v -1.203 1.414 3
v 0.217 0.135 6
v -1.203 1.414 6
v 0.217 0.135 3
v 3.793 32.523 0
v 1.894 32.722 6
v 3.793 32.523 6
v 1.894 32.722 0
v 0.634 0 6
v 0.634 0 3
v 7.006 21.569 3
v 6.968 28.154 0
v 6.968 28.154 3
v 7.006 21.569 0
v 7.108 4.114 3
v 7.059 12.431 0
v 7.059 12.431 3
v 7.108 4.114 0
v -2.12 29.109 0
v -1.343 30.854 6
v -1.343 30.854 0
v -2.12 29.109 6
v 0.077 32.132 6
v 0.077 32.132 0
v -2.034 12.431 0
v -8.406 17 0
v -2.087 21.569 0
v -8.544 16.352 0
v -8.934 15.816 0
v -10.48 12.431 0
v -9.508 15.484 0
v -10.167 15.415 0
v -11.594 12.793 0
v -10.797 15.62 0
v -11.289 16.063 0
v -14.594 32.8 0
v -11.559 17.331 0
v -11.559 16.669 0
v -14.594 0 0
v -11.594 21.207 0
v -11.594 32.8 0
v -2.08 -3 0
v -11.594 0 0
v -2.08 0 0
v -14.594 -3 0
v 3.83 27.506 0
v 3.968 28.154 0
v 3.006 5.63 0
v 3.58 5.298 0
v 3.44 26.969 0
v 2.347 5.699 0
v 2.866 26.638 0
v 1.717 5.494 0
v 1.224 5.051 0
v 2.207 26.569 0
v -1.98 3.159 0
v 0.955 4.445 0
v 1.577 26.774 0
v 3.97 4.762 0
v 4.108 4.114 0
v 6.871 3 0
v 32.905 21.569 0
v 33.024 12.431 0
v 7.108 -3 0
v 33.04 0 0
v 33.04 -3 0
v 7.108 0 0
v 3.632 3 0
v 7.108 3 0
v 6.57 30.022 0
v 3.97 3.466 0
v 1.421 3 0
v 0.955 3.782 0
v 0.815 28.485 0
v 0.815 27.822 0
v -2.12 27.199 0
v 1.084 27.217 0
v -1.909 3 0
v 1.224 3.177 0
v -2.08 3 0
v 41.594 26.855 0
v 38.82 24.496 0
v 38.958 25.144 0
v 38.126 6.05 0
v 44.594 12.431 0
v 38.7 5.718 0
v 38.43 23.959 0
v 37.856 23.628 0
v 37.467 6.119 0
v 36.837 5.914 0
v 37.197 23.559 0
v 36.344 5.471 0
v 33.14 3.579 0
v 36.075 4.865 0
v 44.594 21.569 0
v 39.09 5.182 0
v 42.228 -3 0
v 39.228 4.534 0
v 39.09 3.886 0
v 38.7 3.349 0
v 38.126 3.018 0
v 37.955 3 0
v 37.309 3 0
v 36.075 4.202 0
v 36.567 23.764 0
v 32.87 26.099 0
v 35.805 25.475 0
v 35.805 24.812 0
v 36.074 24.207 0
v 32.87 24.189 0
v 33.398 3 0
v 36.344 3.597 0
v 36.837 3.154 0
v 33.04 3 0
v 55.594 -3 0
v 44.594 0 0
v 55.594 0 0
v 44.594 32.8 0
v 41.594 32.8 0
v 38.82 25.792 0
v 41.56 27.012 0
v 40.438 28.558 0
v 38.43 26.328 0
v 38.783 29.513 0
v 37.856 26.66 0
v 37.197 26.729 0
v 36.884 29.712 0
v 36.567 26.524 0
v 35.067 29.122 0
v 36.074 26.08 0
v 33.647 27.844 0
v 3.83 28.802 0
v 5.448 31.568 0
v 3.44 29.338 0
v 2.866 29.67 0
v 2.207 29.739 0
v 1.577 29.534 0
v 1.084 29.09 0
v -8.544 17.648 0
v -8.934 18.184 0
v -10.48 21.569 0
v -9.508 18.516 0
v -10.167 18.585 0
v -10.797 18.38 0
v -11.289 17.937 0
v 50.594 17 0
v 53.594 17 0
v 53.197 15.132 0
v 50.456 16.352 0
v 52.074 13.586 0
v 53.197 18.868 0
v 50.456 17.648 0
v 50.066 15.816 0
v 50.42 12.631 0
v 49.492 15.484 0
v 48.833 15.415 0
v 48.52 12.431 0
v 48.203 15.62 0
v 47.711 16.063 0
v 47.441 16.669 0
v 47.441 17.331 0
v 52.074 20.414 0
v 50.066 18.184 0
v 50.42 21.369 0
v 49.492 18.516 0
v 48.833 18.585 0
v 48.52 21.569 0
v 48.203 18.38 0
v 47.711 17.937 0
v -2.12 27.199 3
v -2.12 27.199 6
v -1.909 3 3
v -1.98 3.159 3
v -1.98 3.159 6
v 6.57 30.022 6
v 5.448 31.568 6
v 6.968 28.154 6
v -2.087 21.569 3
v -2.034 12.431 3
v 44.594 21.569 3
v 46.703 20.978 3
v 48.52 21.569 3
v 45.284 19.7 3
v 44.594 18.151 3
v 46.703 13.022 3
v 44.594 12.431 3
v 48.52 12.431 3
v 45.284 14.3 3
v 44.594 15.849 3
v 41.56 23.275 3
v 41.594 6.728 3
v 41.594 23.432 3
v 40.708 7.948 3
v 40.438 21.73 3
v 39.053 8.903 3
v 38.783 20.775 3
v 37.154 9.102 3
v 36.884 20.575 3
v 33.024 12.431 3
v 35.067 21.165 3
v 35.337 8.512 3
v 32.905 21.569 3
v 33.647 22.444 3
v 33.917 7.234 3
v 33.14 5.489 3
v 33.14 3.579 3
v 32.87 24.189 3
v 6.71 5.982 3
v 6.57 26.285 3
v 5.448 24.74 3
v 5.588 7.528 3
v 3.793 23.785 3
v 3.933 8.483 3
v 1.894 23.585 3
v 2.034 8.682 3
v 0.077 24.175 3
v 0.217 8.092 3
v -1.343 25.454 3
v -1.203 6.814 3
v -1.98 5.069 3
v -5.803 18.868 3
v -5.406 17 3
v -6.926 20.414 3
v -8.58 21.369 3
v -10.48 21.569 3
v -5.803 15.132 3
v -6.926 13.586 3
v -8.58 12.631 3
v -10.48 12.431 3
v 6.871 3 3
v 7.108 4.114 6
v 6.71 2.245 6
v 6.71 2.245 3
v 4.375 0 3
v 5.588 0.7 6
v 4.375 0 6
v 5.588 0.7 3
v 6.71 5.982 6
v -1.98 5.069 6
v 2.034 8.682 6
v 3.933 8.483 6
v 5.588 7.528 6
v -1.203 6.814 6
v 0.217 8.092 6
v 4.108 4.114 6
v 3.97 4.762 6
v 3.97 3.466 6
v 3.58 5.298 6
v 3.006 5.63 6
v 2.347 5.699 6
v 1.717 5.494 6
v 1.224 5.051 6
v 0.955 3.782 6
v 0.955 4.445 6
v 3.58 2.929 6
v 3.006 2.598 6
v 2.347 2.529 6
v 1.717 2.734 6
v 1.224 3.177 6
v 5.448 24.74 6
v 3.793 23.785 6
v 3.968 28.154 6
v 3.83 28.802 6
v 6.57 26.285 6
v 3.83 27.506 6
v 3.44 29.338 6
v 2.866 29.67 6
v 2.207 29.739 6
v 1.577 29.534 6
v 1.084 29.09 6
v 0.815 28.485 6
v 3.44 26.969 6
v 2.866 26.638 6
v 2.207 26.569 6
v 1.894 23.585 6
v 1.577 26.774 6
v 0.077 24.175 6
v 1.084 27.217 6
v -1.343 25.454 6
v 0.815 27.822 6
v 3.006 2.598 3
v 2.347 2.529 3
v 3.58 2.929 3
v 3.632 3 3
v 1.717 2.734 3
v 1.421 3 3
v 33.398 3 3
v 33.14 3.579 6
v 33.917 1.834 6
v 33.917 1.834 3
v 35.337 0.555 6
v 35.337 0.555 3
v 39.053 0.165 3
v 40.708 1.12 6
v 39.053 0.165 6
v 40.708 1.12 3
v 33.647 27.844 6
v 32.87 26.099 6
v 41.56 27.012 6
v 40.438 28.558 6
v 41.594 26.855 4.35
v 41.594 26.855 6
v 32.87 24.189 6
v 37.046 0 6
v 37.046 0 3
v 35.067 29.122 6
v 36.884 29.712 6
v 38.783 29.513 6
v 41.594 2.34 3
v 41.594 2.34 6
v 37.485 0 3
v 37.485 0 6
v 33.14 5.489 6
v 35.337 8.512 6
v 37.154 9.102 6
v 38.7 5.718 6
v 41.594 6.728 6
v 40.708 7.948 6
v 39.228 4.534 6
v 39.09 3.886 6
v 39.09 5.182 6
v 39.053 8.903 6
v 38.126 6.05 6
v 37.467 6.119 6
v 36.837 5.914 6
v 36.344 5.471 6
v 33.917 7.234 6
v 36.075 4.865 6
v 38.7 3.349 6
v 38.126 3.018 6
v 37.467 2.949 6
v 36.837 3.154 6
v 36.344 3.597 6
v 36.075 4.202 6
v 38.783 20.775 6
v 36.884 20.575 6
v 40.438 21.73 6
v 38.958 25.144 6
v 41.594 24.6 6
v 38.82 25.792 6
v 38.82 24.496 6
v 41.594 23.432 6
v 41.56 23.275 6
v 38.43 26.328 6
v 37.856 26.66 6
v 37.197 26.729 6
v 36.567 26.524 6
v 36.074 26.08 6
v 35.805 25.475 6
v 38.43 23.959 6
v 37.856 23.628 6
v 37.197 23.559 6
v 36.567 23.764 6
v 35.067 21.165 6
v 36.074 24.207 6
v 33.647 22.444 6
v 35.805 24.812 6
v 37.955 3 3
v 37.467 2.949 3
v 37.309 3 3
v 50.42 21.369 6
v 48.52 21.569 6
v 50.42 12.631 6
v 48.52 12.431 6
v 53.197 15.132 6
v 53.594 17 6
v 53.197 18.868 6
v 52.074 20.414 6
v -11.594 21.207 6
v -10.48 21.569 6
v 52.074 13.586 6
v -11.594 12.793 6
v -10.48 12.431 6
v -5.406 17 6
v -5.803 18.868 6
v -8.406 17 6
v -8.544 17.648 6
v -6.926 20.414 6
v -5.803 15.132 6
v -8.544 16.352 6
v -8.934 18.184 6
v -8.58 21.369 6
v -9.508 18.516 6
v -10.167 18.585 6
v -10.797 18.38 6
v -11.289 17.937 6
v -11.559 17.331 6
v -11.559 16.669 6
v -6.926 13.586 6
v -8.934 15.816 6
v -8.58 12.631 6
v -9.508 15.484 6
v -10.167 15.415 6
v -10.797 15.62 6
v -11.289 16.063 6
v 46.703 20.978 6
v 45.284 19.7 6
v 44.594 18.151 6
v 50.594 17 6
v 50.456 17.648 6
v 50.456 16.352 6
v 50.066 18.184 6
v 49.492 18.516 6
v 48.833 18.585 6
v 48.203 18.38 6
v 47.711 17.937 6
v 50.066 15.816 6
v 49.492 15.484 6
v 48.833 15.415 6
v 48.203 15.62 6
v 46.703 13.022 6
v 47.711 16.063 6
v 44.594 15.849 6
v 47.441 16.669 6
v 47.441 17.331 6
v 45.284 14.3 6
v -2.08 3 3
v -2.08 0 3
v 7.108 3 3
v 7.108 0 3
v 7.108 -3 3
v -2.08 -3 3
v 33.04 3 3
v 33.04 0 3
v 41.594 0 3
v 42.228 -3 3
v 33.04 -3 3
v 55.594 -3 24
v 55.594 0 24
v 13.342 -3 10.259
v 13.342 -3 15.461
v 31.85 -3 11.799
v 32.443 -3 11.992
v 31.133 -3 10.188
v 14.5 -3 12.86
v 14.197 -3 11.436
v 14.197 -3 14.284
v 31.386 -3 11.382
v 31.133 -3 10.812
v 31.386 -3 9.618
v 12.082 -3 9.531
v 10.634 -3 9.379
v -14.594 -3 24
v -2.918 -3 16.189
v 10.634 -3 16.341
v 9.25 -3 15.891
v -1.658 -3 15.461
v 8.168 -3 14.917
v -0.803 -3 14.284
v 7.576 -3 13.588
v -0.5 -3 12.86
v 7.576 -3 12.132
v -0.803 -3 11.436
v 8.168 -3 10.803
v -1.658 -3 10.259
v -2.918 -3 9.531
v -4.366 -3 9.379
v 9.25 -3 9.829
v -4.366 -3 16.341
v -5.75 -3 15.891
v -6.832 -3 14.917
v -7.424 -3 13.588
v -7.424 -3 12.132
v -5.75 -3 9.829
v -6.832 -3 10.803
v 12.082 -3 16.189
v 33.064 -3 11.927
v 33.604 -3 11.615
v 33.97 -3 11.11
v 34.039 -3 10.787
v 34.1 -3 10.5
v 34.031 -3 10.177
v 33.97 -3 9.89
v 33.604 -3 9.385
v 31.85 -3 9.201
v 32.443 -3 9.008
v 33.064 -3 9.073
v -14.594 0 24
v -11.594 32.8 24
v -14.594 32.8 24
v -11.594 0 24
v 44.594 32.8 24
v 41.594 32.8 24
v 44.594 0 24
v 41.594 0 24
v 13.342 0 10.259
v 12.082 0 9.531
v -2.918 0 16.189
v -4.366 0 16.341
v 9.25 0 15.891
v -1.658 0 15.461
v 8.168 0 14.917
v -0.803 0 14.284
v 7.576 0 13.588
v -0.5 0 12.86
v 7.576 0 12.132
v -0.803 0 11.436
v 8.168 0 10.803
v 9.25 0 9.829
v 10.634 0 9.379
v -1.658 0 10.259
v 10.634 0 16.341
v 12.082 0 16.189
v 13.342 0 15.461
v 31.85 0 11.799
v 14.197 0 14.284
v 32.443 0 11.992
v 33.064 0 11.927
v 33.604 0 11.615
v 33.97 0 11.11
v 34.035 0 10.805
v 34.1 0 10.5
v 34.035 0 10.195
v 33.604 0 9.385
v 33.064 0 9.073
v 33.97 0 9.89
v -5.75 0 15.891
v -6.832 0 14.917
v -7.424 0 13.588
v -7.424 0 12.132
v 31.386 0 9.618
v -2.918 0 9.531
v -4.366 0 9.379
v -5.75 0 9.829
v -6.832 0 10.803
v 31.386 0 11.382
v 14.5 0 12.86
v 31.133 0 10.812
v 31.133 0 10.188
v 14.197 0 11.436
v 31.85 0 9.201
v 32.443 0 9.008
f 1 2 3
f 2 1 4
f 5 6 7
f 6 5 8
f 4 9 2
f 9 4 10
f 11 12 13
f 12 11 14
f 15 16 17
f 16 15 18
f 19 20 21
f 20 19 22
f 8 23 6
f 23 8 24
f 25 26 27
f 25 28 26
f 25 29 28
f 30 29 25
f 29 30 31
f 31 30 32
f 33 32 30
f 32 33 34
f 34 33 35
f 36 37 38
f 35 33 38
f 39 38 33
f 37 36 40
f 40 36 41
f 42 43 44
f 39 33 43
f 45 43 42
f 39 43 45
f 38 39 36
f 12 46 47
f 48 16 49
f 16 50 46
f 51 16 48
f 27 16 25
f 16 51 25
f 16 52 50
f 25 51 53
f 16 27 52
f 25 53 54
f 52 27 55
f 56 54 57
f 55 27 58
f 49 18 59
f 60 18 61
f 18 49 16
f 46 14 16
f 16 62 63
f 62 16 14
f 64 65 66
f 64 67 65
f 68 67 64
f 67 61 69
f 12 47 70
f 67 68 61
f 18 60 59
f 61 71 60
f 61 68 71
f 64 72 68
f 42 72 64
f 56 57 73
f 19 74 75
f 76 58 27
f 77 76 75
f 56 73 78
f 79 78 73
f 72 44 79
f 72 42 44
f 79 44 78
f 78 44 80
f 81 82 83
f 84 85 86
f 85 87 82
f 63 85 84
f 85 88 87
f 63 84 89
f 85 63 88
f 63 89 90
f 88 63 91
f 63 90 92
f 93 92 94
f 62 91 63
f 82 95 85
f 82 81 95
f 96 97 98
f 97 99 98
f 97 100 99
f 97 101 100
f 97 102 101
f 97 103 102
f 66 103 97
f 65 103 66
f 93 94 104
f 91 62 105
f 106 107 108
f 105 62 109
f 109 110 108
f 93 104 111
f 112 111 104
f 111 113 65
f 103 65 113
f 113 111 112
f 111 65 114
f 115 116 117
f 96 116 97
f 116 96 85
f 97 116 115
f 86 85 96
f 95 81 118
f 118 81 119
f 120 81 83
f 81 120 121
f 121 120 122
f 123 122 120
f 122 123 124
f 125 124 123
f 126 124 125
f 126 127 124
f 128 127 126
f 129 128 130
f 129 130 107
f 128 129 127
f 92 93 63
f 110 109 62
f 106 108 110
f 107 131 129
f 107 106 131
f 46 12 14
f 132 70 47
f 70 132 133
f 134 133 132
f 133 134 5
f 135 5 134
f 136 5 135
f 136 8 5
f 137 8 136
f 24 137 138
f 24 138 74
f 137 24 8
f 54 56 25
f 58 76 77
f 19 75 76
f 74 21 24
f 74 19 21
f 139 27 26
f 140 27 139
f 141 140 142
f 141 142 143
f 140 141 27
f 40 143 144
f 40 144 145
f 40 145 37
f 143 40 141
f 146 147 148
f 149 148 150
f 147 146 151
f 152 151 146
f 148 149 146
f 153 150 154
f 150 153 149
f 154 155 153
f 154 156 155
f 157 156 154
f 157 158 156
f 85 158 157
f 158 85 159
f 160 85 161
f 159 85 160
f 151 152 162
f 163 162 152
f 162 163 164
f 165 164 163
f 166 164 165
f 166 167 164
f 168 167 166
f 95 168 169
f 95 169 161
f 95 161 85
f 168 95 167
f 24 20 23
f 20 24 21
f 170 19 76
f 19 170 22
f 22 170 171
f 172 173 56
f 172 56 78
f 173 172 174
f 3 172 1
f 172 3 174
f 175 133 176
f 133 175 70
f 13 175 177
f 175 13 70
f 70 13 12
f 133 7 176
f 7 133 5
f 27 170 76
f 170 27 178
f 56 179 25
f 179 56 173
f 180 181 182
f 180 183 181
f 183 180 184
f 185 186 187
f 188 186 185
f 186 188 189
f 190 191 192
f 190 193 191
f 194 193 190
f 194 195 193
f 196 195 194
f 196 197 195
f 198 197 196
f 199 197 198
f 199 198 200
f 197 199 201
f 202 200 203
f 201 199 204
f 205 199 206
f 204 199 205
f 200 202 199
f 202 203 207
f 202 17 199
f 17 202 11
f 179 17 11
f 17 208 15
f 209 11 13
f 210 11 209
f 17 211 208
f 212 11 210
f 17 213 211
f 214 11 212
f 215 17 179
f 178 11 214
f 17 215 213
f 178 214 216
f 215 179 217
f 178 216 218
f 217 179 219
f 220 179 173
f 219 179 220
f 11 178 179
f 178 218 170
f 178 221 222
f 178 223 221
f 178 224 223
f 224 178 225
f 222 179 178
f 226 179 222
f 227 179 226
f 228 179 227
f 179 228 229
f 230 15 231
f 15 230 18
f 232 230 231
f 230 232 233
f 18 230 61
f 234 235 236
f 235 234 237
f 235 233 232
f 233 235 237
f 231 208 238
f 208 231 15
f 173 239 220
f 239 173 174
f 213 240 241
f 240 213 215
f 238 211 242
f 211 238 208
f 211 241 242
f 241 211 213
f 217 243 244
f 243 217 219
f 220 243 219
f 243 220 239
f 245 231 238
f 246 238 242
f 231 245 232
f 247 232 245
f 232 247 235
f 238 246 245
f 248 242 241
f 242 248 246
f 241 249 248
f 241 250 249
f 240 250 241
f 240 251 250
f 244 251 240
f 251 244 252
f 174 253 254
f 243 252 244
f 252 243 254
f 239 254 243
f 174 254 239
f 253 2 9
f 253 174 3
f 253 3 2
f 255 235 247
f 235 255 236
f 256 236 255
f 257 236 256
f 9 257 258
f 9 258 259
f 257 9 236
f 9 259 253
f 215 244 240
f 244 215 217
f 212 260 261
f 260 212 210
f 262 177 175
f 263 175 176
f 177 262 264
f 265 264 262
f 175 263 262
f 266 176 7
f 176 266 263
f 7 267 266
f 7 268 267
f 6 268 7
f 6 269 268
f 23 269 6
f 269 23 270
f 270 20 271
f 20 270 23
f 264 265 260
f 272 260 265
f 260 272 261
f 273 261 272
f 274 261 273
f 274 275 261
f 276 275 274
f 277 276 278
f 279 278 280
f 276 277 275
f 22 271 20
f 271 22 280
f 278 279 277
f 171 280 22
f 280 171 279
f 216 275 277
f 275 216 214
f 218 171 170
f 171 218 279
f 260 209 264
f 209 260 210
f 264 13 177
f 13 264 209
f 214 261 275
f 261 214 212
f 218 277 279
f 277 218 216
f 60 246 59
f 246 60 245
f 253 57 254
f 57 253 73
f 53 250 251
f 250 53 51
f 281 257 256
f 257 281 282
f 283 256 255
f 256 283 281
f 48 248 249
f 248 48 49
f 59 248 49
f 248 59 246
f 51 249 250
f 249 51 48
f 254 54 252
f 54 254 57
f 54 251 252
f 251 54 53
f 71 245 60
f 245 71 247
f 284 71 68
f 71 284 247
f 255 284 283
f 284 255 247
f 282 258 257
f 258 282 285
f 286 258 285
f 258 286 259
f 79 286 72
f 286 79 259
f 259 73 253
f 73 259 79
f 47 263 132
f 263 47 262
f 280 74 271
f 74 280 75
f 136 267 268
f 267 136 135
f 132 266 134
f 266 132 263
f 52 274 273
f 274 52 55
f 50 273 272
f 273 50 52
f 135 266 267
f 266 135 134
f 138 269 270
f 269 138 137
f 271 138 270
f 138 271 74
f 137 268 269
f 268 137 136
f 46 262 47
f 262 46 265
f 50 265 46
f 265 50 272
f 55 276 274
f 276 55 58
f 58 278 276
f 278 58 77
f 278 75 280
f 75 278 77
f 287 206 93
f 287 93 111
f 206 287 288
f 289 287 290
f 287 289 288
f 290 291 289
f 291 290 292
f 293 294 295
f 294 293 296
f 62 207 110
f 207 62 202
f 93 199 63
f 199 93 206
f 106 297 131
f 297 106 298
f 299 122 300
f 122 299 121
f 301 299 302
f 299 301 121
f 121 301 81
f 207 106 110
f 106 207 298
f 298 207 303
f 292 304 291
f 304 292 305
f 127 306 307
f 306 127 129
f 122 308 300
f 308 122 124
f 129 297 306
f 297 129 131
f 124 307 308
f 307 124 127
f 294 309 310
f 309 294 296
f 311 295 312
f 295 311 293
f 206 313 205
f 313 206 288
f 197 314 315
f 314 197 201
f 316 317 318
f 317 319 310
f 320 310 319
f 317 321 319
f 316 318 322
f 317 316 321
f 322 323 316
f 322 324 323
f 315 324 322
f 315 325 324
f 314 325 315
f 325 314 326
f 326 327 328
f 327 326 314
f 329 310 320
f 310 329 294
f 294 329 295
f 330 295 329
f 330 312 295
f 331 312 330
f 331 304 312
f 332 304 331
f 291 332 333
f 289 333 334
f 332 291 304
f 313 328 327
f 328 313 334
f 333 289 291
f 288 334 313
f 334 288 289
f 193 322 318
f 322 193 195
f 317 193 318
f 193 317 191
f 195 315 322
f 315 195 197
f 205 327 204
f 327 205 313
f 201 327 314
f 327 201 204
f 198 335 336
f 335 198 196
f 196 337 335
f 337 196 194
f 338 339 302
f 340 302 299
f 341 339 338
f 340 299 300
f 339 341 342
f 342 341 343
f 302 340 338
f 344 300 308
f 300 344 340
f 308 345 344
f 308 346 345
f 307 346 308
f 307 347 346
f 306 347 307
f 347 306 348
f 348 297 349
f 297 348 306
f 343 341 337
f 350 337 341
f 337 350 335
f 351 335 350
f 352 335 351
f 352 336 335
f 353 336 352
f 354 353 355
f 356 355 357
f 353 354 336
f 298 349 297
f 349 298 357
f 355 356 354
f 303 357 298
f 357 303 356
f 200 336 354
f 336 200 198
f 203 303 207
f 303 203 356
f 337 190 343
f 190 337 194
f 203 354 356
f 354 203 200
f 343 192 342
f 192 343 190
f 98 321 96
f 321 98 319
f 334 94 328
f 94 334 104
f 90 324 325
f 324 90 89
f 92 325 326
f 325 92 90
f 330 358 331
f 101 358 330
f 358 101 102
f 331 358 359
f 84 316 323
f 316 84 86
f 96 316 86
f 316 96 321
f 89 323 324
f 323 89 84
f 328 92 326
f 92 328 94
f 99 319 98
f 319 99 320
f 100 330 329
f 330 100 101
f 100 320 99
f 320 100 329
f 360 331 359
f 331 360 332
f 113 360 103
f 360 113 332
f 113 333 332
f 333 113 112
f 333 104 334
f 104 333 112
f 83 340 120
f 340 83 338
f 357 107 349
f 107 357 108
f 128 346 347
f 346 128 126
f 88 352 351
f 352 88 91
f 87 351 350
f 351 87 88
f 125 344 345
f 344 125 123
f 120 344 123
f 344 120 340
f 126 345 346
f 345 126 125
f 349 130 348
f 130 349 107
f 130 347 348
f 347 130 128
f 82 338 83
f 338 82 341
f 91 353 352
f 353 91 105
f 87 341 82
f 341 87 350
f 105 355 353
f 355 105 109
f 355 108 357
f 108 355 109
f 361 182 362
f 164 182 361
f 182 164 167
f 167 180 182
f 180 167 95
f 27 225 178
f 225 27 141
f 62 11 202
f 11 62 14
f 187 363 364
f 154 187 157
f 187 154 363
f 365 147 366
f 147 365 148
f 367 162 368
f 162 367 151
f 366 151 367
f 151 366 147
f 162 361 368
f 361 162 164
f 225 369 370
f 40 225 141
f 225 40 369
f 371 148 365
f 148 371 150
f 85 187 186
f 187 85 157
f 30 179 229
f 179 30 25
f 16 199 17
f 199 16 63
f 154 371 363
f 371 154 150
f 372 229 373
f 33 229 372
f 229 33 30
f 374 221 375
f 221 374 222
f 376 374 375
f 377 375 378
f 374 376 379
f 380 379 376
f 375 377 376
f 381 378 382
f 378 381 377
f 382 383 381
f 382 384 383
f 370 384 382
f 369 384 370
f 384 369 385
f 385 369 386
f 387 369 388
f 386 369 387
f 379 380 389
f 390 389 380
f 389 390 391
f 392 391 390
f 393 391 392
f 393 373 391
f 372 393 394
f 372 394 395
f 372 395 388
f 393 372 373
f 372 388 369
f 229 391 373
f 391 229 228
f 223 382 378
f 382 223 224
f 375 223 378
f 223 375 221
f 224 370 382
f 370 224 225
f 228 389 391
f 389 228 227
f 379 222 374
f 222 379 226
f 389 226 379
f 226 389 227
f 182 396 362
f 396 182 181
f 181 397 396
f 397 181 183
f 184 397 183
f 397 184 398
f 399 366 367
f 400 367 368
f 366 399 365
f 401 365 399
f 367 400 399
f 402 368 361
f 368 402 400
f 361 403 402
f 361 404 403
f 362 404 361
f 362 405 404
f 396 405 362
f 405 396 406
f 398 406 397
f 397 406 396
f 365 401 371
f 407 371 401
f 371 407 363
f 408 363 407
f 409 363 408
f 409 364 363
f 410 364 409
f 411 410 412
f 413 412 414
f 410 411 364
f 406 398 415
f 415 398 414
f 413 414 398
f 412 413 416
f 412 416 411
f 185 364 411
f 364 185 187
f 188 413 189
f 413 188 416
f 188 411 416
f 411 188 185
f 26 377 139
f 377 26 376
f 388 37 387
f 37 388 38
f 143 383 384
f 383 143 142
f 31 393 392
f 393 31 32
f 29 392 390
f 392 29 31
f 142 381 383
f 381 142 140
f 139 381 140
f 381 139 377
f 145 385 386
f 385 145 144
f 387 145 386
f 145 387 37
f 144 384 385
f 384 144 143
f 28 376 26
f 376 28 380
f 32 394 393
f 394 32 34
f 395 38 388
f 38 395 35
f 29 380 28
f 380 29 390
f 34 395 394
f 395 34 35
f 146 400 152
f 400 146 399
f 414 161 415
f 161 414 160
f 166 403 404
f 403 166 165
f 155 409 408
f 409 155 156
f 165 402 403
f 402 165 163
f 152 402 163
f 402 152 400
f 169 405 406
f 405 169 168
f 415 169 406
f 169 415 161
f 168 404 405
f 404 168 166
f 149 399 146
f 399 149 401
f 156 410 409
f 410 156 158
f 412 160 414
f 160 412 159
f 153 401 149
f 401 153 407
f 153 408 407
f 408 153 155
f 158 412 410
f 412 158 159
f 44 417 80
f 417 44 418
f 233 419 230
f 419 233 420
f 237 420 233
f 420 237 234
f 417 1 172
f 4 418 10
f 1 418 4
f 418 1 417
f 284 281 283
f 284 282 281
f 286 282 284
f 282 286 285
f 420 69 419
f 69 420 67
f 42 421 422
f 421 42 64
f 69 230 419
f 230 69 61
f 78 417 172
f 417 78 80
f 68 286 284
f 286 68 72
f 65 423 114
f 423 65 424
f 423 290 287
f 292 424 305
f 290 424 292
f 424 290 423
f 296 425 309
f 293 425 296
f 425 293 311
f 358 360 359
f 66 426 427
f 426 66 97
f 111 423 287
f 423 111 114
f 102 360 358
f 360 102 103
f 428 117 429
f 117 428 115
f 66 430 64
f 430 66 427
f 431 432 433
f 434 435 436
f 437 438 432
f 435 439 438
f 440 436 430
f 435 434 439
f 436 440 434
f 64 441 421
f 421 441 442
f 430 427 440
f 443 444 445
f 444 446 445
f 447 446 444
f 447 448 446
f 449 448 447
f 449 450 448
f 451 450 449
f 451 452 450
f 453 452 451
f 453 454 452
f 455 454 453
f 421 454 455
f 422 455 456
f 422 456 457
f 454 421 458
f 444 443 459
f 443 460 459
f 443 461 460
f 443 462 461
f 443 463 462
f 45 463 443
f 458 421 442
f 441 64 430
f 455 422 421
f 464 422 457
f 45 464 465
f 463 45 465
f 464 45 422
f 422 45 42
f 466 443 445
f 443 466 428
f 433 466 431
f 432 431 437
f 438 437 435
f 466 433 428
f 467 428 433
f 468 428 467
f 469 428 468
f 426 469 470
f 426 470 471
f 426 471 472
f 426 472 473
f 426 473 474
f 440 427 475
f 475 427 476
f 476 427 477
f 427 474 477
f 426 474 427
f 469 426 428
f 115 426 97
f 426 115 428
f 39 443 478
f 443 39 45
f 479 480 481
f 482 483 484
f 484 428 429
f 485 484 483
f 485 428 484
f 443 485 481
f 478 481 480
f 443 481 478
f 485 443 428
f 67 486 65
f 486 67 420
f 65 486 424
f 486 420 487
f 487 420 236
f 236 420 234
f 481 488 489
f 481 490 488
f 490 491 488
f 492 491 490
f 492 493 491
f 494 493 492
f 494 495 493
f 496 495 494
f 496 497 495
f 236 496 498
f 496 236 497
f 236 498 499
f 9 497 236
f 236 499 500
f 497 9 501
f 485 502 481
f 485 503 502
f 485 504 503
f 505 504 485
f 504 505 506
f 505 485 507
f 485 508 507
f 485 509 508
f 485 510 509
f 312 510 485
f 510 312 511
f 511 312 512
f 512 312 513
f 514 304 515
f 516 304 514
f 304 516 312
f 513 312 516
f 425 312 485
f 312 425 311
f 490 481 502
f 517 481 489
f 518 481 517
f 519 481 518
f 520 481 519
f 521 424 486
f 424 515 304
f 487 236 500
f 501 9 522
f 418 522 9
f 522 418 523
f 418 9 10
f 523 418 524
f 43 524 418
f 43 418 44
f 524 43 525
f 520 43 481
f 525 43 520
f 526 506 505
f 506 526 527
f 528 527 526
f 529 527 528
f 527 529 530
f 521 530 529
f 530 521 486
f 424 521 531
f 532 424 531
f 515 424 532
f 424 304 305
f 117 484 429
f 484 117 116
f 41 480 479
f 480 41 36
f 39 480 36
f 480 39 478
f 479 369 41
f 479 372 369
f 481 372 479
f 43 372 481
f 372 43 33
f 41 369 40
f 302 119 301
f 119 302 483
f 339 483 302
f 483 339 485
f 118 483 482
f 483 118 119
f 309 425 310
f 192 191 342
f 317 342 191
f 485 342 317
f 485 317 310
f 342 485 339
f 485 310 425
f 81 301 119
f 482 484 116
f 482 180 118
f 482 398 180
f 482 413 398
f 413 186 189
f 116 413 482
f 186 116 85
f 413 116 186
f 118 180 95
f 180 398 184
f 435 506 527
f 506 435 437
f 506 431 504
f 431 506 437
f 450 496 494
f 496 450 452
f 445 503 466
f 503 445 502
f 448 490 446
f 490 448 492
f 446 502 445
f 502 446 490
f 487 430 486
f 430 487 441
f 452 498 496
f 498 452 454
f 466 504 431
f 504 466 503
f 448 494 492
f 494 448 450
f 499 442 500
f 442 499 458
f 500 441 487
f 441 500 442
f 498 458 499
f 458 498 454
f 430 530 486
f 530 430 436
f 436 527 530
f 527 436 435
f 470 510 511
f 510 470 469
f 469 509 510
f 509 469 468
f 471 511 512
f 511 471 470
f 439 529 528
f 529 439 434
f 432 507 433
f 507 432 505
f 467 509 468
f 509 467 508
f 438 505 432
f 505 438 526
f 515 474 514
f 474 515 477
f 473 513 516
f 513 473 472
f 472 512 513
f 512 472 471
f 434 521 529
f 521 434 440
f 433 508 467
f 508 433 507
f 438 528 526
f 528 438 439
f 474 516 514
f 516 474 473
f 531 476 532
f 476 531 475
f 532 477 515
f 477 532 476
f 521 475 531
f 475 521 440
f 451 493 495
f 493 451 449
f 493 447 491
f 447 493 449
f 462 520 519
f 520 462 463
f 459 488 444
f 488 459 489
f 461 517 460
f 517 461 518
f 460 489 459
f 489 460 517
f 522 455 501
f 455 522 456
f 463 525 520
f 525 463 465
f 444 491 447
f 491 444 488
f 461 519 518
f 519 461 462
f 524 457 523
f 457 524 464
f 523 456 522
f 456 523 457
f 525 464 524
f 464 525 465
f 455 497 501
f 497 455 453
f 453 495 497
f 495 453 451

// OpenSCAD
$fn=15;
t = 3;
r = 25.5/16;
d = t+r;
g=1; //gap
ec = 18 + t+t;
sg =10;  //screwgap from side of board
z = [  [0.92,2.52],[36.04,2.94],[35.77,23.55],[0.78,26.56] ];
echo(h,sg);
 h= [ for ( j = z) j+[r,r]  ];
echo("z ",z);
 


board = [41,41,2];
extra = [(sg+t+r)*2,-board[1]+ec,1];
vc =[11,0,6.86+6];
led = [32.6,0,4.5+t+t];
front = board +extra;
echo("front",front);
strut = [d*2,t+t,t];
fh = front[1];
st = board[1] * 0.8; 
 side = [[0,0],[0,fh],[st,fh],[st,0]];

module  bar(d1 =[0,0],d2=[10,30]){

echo(d1,d2);
difference(){
 union(){
        linear_extrude(t)
            hull(){translate(d1) circle(d);
            translate(d2)circle(d);    
         }
  
        translate(d1)cylinder(r=d,h=t+t);
        translate(d2) cylinder(r=d,h=t+t);
  }; 
  translate(d1) cylinder(r=r, h= 100, center=true);
  translate(d2) cylinder(r=r, h= 100, center=true);
  }
}
 
difference(){
    union() {
        bar(h[0],h[3]); 
        bar(h[1],h[2]); 
        bar([-10,17],[board[0]+8,17]);
        translate([h[0][0],0,t/2])cube(strut,center=true);
        translate([h[1][0],0,t/2])cube(strut,center=true);

        //translate([0,0,3+3])cube(board);
        translate([-extra[0]/2,0,0])rotate([90,0,0])cube(front);
        translate([-10-d,0,0])rotate([90,0,90])linear_extrude(3)polygon(side);
        translate([board[1]+d-4,0,0])rotate([90,0,90])linear_extrude(3)polygon(side);
    }
    translate(vc)rotate([90,0,0]) cylinder(r = 7/2,h = 100, center=true);
    translate(led)rotate([90,0,0]) cylinder(r = 3/2,h = 100, center=true);
    translate([-4,0,vc[2]])rotate([90,0,0]) cylinder(r = 7/2,h = 100, center=true);
}
